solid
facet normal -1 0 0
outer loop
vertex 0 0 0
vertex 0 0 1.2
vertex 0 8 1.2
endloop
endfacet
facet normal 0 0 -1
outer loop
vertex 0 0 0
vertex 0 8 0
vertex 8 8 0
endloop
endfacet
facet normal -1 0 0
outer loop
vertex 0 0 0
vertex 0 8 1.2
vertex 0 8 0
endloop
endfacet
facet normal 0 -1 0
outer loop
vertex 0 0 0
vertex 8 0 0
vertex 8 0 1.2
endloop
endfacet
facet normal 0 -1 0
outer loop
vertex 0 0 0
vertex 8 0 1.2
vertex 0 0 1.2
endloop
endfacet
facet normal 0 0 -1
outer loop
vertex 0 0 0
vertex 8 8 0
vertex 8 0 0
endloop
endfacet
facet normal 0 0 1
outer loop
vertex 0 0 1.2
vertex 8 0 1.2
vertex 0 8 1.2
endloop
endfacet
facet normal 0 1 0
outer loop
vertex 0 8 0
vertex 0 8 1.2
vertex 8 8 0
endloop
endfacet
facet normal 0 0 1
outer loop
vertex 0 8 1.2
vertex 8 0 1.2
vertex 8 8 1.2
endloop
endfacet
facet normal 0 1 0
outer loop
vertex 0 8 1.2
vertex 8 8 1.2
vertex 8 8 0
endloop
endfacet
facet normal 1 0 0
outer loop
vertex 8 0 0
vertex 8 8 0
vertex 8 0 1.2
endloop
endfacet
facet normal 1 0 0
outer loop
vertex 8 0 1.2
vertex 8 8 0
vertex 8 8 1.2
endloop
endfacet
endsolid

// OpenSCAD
/* Warning, this is a very basic generator with a lot of approximation 
input data : [TFBGA, KVX, 8x8x1.2mm, 59, , A, C04-00468A]
generated by com.zoubworld.electronics.cad.model3d.Basic
Date : Sun Feb 15 10:50:48 CET 2026
*/

//body
color("black")
translate([0,0,0])
cube([8.0,8.0,1.2], center=false);
